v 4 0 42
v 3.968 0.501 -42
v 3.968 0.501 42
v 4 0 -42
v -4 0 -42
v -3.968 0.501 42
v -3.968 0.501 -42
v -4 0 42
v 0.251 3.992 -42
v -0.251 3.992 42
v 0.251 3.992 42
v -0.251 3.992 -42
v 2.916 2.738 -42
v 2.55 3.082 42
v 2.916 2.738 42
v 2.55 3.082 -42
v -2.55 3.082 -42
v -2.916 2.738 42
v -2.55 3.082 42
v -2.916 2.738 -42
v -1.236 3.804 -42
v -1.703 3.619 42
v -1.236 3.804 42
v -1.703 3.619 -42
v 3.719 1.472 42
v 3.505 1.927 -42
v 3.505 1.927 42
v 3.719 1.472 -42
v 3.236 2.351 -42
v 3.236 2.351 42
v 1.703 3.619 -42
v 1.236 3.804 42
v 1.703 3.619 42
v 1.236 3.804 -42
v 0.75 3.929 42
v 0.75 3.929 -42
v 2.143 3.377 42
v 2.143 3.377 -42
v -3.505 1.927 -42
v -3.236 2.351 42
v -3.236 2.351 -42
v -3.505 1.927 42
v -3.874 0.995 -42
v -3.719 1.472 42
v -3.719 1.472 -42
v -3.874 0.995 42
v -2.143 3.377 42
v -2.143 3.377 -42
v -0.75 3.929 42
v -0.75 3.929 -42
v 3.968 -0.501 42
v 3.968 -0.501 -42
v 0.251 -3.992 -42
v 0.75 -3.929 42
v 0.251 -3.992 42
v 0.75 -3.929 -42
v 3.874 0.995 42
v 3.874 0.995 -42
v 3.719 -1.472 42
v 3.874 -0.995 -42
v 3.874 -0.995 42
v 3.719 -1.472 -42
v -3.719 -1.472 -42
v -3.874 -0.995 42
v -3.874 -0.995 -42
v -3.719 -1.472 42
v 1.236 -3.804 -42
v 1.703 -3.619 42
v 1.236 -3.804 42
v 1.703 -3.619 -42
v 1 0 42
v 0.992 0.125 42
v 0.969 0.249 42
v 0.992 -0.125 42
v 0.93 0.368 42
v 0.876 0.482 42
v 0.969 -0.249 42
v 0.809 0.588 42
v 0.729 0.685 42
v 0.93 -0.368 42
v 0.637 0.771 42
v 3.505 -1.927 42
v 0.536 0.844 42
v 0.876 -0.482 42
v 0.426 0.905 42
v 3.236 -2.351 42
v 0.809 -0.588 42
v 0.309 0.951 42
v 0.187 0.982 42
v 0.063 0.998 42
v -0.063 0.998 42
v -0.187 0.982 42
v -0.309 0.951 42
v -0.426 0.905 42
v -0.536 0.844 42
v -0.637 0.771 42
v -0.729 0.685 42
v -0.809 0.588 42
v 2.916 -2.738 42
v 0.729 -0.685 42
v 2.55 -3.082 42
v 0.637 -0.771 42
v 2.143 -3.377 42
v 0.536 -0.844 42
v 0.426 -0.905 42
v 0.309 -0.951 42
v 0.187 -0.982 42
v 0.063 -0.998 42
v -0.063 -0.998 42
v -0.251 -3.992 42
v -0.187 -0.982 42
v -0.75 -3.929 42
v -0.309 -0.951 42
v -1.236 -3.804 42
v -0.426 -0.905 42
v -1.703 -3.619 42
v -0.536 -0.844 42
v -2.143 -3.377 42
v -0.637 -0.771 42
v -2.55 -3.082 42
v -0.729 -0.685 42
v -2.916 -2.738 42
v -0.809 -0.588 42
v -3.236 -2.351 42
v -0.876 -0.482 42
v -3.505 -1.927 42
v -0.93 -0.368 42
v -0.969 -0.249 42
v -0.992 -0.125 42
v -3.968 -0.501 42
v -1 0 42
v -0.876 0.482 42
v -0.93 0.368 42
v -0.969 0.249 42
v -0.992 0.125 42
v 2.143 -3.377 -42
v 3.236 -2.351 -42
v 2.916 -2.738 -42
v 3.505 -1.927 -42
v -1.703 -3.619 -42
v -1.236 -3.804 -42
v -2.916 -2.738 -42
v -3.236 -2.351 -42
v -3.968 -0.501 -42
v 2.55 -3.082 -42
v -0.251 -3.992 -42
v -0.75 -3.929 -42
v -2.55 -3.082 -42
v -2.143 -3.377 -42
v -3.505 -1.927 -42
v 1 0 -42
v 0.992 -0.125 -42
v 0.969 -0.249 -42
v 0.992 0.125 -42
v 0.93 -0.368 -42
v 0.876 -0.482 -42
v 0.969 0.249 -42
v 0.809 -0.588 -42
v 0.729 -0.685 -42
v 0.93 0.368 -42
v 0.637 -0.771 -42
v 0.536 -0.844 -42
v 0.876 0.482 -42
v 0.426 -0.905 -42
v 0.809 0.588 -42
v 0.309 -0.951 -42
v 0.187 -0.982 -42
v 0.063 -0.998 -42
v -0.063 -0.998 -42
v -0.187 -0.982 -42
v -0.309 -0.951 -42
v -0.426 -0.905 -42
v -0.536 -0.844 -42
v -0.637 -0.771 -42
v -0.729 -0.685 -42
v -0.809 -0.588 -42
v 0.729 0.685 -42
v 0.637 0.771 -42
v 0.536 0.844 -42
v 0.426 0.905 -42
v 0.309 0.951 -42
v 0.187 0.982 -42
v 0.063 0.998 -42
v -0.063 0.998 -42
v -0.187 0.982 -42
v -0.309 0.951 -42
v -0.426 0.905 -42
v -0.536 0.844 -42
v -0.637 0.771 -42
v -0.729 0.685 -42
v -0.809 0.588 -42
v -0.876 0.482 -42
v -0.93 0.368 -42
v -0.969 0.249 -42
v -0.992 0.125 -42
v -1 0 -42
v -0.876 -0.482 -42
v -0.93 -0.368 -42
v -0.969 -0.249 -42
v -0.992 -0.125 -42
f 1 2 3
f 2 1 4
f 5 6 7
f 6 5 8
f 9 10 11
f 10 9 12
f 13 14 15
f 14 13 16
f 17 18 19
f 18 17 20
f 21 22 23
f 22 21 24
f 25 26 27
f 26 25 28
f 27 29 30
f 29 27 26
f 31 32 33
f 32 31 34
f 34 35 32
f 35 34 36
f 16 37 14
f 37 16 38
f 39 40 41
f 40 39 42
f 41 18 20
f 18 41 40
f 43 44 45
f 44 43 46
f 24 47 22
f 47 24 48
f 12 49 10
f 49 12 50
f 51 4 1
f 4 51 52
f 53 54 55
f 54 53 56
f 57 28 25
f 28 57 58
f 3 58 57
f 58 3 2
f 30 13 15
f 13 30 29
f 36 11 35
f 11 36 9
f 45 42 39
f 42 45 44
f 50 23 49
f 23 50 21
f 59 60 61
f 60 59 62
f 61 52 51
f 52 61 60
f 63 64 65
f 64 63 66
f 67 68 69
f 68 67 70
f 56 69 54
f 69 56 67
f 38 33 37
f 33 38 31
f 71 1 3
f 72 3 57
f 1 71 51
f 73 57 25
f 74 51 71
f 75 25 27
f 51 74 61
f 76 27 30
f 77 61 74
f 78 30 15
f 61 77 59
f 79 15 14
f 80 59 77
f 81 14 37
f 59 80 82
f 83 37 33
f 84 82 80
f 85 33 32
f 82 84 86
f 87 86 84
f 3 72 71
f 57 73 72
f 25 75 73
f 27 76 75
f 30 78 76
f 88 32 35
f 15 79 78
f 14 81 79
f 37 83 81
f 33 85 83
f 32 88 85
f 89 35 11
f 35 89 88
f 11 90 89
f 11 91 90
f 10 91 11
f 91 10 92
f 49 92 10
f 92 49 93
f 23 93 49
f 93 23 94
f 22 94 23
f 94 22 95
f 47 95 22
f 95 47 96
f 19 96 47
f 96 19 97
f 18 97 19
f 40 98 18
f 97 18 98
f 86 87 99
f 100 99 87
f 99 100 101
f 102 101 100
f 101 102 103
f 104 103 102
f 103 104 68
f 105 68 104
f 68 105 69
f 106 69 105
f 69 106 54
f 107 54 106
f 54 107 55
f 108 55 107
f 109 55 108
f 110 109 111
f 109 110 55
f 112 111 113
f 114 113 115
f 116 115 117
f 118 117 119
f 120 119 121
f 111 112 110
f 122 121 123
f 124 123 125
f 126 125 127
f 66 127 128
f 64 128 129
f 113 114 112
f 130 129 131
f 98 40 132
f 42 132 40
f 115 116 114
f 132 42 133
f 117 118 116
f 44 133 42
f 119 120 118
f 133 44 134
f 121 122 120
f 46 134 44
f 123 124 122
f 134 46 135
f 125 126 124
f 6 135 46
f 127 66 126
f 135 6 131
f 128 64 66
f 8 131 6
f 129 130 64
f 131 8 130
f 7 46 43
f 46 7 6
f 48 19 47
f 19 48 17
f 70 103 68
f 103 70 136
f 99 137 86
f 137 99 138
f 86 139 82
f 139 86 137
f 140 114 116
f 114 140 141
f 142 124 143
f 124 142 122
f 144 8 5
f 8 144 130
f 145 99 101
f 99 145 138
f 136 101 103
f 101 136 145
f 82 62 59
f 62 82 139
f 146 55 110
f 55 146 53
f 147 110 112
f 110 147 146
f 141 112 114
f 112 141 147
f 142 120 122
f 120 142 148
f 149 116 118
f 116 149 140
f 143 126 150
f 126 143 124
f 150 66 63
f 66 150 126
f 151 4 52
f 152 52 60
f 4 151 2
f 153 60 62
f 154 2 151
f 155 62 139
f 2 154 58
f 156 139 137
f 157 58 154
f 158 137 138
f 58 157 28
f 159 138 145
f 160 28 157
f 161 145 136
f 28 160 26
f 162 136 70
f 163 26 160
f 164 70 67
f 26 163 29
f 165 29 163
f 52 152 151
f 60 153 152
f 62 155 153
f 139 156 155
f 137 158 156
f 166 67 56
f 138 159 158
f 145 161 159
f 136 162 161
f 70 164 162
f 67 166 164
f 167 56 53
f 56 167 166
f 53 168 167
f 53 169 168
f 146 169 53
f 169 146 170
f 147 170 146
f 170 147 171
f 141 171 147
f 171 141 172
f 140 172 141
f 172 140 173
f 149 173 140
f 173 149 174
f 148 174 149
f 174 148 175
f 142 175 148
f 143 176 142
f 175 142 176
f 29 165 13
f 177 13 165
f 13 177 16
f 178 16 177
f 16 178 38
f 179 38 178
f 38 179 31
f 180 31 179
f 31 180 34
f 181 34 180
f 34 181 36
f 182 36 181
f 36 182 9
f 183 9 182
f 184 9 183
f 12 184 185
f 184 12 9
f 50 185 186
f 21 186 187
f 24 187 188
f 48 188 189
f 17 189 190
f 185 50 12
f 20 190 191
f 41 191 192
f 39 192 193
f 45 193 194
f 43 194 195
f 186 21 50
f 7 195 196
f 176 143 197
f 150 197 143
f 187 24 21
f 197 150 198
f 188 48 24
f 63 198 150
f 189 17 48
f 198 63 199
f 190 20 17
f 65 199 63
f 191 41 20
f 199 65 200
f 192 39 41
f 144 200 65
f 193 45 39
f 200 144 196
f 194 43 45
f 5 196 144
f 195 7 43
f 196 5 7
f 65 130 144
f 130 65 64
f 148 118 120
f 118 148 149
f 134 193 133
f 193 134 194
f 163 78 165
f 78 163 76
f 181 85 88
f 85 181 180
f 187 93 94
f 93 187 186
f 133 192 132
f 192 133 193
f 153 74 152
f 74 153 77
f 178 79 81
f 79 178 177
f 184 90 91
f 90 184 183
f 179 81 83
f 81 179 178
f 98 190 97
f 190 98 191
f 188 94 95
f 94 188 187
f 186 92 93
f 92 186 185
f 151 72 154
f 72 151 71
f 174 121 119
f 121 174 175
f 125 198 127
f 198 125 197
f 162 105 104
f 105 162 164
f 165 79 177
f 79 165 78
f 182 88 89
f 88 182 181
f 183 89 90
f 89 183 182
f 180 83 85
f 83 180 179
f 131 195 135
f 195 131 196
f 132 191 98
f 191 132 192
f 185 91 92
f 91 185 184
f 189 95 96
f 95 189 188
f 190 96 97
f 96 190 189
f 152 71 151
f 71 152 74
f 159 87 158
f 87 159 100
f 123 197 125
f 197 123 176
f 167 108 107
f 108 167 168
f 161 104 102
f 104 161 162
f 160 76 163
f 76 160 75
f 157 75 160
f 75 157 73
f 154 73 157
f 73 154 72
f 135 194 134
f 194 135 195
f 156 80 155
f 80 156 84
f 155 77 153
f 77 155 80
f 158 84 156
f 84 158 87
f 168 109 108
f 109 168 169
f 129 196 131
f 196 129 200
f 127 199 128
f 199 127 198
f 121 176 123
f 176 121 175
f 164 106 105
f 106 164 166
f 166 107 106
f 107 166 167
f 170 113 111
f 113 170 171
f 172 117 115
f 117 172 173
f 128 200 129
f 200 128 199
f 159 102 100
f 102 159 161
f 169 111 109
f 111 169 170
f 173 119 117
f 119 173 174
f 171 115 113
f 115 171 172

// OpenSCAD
$fn = 50;


difference() {
	union() {
		translate(v = [0, 0, -42.0000000000]) {
			cylinder(h = 84, r = 4.0000000000);
		}
	}
	union() {
		translate(v = [0, 0, -100.0000000000]) {
			cylinder(h = 200, r = 1.0000000000);
		}
	}
}
